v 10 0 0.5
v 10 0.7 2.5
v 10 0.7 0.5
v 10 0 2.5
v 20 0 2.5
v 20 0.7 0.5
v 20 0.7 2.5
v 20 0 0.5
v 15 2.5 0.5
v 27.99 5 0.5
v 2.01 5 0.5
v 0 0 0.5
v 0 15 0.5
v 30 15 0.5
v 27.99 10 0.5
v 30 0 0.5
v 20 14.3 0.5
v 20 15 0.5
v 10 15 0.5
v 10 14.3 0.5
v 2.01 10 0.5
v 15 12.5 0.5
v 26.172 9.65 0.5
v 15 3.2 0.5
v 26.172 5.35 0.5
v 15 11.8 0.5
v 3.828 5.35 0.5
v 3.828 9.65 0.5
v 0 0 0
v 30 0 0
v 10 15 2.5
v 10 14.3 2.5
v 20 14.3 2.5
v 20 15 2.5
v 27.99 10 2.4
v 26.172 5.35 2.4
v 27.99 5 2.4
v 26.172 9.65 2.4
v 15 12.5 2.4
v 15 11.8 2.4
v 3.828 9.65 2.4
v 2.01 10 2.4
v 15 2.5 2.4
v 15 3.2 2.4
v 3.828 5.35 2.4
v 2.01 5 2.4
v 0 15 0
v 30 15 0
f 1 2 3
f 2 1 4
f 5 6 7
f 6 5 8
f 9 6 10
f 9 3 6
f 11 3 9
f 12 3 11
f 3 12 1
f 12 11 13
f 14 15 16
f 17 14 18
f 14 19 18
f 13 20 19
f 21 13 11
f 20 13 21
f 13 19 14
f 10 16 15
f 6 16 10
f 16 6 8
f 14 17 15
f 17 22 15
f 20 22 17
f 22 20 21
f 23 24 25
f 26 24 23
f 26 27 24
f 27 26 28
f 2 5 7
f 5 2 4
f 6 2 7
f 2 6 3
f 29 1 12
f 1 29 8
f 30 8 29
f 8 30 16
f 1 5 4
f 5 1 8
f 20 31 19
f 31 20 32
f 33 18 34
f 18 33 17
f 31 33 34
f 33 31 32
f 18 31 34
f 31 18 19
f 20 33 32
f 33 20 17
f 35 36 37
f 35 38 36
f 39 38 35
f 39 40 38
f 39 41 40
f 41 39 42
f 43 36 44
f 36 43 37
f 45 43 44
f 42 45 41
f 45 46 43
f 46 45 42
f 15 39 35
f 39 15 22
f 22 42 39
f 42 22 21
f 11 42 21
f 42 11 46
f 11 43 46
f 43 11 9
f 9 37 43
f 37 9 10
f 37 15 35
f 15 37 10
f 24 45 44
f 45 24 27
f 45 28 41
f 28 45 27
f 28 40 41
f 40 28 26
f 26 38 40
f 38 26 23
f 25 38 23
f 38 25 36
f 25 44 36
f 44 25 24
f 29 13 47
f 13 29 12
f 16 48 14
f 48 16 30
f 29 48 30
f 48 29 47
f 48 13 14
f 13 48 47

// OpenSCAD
pad = 0.1; // Padding to maintain manifold
smooth = 360; // Number of facets of rounding cylinder
polyl=15;
polyw=5;
polyscale=polyl/polyw;
baset=0.5;
wedgeh=2;
basex=polyl*2;
uh=5;   // Underhang
basey=polyw*2+uh;
wallt=0.7;

color("lightPink",1)
translate([polyw*polyscale,polyw+uh/2,baset-pad])
    linear_extrude(wedgeh)
        scale([polyscale,1,1]) 
            rotate(a=[0,0,30]) 
            difference() {
                circle(r=polyw,$fn=6);
                circle(r=polyw-wallt,$fn=6);
            }                

color("paleGreen") 
linear_extrude(baset)
    polygon([[0,0],[basex,0],[basex,basey],[0,basey]],convexity=2);

color("thistle")
for (n=[0:1]) {            
    translate([basex/3,n*(basey-wallt),baset])
        wall(h=wedgeh,l=basex/3,t=wallt);
}

module wall(h=2,l=5,t=0.7) {
    linear_extrude(h)
        polygon([[0,0],[l,0],[l,t],[0,t]]);
}
